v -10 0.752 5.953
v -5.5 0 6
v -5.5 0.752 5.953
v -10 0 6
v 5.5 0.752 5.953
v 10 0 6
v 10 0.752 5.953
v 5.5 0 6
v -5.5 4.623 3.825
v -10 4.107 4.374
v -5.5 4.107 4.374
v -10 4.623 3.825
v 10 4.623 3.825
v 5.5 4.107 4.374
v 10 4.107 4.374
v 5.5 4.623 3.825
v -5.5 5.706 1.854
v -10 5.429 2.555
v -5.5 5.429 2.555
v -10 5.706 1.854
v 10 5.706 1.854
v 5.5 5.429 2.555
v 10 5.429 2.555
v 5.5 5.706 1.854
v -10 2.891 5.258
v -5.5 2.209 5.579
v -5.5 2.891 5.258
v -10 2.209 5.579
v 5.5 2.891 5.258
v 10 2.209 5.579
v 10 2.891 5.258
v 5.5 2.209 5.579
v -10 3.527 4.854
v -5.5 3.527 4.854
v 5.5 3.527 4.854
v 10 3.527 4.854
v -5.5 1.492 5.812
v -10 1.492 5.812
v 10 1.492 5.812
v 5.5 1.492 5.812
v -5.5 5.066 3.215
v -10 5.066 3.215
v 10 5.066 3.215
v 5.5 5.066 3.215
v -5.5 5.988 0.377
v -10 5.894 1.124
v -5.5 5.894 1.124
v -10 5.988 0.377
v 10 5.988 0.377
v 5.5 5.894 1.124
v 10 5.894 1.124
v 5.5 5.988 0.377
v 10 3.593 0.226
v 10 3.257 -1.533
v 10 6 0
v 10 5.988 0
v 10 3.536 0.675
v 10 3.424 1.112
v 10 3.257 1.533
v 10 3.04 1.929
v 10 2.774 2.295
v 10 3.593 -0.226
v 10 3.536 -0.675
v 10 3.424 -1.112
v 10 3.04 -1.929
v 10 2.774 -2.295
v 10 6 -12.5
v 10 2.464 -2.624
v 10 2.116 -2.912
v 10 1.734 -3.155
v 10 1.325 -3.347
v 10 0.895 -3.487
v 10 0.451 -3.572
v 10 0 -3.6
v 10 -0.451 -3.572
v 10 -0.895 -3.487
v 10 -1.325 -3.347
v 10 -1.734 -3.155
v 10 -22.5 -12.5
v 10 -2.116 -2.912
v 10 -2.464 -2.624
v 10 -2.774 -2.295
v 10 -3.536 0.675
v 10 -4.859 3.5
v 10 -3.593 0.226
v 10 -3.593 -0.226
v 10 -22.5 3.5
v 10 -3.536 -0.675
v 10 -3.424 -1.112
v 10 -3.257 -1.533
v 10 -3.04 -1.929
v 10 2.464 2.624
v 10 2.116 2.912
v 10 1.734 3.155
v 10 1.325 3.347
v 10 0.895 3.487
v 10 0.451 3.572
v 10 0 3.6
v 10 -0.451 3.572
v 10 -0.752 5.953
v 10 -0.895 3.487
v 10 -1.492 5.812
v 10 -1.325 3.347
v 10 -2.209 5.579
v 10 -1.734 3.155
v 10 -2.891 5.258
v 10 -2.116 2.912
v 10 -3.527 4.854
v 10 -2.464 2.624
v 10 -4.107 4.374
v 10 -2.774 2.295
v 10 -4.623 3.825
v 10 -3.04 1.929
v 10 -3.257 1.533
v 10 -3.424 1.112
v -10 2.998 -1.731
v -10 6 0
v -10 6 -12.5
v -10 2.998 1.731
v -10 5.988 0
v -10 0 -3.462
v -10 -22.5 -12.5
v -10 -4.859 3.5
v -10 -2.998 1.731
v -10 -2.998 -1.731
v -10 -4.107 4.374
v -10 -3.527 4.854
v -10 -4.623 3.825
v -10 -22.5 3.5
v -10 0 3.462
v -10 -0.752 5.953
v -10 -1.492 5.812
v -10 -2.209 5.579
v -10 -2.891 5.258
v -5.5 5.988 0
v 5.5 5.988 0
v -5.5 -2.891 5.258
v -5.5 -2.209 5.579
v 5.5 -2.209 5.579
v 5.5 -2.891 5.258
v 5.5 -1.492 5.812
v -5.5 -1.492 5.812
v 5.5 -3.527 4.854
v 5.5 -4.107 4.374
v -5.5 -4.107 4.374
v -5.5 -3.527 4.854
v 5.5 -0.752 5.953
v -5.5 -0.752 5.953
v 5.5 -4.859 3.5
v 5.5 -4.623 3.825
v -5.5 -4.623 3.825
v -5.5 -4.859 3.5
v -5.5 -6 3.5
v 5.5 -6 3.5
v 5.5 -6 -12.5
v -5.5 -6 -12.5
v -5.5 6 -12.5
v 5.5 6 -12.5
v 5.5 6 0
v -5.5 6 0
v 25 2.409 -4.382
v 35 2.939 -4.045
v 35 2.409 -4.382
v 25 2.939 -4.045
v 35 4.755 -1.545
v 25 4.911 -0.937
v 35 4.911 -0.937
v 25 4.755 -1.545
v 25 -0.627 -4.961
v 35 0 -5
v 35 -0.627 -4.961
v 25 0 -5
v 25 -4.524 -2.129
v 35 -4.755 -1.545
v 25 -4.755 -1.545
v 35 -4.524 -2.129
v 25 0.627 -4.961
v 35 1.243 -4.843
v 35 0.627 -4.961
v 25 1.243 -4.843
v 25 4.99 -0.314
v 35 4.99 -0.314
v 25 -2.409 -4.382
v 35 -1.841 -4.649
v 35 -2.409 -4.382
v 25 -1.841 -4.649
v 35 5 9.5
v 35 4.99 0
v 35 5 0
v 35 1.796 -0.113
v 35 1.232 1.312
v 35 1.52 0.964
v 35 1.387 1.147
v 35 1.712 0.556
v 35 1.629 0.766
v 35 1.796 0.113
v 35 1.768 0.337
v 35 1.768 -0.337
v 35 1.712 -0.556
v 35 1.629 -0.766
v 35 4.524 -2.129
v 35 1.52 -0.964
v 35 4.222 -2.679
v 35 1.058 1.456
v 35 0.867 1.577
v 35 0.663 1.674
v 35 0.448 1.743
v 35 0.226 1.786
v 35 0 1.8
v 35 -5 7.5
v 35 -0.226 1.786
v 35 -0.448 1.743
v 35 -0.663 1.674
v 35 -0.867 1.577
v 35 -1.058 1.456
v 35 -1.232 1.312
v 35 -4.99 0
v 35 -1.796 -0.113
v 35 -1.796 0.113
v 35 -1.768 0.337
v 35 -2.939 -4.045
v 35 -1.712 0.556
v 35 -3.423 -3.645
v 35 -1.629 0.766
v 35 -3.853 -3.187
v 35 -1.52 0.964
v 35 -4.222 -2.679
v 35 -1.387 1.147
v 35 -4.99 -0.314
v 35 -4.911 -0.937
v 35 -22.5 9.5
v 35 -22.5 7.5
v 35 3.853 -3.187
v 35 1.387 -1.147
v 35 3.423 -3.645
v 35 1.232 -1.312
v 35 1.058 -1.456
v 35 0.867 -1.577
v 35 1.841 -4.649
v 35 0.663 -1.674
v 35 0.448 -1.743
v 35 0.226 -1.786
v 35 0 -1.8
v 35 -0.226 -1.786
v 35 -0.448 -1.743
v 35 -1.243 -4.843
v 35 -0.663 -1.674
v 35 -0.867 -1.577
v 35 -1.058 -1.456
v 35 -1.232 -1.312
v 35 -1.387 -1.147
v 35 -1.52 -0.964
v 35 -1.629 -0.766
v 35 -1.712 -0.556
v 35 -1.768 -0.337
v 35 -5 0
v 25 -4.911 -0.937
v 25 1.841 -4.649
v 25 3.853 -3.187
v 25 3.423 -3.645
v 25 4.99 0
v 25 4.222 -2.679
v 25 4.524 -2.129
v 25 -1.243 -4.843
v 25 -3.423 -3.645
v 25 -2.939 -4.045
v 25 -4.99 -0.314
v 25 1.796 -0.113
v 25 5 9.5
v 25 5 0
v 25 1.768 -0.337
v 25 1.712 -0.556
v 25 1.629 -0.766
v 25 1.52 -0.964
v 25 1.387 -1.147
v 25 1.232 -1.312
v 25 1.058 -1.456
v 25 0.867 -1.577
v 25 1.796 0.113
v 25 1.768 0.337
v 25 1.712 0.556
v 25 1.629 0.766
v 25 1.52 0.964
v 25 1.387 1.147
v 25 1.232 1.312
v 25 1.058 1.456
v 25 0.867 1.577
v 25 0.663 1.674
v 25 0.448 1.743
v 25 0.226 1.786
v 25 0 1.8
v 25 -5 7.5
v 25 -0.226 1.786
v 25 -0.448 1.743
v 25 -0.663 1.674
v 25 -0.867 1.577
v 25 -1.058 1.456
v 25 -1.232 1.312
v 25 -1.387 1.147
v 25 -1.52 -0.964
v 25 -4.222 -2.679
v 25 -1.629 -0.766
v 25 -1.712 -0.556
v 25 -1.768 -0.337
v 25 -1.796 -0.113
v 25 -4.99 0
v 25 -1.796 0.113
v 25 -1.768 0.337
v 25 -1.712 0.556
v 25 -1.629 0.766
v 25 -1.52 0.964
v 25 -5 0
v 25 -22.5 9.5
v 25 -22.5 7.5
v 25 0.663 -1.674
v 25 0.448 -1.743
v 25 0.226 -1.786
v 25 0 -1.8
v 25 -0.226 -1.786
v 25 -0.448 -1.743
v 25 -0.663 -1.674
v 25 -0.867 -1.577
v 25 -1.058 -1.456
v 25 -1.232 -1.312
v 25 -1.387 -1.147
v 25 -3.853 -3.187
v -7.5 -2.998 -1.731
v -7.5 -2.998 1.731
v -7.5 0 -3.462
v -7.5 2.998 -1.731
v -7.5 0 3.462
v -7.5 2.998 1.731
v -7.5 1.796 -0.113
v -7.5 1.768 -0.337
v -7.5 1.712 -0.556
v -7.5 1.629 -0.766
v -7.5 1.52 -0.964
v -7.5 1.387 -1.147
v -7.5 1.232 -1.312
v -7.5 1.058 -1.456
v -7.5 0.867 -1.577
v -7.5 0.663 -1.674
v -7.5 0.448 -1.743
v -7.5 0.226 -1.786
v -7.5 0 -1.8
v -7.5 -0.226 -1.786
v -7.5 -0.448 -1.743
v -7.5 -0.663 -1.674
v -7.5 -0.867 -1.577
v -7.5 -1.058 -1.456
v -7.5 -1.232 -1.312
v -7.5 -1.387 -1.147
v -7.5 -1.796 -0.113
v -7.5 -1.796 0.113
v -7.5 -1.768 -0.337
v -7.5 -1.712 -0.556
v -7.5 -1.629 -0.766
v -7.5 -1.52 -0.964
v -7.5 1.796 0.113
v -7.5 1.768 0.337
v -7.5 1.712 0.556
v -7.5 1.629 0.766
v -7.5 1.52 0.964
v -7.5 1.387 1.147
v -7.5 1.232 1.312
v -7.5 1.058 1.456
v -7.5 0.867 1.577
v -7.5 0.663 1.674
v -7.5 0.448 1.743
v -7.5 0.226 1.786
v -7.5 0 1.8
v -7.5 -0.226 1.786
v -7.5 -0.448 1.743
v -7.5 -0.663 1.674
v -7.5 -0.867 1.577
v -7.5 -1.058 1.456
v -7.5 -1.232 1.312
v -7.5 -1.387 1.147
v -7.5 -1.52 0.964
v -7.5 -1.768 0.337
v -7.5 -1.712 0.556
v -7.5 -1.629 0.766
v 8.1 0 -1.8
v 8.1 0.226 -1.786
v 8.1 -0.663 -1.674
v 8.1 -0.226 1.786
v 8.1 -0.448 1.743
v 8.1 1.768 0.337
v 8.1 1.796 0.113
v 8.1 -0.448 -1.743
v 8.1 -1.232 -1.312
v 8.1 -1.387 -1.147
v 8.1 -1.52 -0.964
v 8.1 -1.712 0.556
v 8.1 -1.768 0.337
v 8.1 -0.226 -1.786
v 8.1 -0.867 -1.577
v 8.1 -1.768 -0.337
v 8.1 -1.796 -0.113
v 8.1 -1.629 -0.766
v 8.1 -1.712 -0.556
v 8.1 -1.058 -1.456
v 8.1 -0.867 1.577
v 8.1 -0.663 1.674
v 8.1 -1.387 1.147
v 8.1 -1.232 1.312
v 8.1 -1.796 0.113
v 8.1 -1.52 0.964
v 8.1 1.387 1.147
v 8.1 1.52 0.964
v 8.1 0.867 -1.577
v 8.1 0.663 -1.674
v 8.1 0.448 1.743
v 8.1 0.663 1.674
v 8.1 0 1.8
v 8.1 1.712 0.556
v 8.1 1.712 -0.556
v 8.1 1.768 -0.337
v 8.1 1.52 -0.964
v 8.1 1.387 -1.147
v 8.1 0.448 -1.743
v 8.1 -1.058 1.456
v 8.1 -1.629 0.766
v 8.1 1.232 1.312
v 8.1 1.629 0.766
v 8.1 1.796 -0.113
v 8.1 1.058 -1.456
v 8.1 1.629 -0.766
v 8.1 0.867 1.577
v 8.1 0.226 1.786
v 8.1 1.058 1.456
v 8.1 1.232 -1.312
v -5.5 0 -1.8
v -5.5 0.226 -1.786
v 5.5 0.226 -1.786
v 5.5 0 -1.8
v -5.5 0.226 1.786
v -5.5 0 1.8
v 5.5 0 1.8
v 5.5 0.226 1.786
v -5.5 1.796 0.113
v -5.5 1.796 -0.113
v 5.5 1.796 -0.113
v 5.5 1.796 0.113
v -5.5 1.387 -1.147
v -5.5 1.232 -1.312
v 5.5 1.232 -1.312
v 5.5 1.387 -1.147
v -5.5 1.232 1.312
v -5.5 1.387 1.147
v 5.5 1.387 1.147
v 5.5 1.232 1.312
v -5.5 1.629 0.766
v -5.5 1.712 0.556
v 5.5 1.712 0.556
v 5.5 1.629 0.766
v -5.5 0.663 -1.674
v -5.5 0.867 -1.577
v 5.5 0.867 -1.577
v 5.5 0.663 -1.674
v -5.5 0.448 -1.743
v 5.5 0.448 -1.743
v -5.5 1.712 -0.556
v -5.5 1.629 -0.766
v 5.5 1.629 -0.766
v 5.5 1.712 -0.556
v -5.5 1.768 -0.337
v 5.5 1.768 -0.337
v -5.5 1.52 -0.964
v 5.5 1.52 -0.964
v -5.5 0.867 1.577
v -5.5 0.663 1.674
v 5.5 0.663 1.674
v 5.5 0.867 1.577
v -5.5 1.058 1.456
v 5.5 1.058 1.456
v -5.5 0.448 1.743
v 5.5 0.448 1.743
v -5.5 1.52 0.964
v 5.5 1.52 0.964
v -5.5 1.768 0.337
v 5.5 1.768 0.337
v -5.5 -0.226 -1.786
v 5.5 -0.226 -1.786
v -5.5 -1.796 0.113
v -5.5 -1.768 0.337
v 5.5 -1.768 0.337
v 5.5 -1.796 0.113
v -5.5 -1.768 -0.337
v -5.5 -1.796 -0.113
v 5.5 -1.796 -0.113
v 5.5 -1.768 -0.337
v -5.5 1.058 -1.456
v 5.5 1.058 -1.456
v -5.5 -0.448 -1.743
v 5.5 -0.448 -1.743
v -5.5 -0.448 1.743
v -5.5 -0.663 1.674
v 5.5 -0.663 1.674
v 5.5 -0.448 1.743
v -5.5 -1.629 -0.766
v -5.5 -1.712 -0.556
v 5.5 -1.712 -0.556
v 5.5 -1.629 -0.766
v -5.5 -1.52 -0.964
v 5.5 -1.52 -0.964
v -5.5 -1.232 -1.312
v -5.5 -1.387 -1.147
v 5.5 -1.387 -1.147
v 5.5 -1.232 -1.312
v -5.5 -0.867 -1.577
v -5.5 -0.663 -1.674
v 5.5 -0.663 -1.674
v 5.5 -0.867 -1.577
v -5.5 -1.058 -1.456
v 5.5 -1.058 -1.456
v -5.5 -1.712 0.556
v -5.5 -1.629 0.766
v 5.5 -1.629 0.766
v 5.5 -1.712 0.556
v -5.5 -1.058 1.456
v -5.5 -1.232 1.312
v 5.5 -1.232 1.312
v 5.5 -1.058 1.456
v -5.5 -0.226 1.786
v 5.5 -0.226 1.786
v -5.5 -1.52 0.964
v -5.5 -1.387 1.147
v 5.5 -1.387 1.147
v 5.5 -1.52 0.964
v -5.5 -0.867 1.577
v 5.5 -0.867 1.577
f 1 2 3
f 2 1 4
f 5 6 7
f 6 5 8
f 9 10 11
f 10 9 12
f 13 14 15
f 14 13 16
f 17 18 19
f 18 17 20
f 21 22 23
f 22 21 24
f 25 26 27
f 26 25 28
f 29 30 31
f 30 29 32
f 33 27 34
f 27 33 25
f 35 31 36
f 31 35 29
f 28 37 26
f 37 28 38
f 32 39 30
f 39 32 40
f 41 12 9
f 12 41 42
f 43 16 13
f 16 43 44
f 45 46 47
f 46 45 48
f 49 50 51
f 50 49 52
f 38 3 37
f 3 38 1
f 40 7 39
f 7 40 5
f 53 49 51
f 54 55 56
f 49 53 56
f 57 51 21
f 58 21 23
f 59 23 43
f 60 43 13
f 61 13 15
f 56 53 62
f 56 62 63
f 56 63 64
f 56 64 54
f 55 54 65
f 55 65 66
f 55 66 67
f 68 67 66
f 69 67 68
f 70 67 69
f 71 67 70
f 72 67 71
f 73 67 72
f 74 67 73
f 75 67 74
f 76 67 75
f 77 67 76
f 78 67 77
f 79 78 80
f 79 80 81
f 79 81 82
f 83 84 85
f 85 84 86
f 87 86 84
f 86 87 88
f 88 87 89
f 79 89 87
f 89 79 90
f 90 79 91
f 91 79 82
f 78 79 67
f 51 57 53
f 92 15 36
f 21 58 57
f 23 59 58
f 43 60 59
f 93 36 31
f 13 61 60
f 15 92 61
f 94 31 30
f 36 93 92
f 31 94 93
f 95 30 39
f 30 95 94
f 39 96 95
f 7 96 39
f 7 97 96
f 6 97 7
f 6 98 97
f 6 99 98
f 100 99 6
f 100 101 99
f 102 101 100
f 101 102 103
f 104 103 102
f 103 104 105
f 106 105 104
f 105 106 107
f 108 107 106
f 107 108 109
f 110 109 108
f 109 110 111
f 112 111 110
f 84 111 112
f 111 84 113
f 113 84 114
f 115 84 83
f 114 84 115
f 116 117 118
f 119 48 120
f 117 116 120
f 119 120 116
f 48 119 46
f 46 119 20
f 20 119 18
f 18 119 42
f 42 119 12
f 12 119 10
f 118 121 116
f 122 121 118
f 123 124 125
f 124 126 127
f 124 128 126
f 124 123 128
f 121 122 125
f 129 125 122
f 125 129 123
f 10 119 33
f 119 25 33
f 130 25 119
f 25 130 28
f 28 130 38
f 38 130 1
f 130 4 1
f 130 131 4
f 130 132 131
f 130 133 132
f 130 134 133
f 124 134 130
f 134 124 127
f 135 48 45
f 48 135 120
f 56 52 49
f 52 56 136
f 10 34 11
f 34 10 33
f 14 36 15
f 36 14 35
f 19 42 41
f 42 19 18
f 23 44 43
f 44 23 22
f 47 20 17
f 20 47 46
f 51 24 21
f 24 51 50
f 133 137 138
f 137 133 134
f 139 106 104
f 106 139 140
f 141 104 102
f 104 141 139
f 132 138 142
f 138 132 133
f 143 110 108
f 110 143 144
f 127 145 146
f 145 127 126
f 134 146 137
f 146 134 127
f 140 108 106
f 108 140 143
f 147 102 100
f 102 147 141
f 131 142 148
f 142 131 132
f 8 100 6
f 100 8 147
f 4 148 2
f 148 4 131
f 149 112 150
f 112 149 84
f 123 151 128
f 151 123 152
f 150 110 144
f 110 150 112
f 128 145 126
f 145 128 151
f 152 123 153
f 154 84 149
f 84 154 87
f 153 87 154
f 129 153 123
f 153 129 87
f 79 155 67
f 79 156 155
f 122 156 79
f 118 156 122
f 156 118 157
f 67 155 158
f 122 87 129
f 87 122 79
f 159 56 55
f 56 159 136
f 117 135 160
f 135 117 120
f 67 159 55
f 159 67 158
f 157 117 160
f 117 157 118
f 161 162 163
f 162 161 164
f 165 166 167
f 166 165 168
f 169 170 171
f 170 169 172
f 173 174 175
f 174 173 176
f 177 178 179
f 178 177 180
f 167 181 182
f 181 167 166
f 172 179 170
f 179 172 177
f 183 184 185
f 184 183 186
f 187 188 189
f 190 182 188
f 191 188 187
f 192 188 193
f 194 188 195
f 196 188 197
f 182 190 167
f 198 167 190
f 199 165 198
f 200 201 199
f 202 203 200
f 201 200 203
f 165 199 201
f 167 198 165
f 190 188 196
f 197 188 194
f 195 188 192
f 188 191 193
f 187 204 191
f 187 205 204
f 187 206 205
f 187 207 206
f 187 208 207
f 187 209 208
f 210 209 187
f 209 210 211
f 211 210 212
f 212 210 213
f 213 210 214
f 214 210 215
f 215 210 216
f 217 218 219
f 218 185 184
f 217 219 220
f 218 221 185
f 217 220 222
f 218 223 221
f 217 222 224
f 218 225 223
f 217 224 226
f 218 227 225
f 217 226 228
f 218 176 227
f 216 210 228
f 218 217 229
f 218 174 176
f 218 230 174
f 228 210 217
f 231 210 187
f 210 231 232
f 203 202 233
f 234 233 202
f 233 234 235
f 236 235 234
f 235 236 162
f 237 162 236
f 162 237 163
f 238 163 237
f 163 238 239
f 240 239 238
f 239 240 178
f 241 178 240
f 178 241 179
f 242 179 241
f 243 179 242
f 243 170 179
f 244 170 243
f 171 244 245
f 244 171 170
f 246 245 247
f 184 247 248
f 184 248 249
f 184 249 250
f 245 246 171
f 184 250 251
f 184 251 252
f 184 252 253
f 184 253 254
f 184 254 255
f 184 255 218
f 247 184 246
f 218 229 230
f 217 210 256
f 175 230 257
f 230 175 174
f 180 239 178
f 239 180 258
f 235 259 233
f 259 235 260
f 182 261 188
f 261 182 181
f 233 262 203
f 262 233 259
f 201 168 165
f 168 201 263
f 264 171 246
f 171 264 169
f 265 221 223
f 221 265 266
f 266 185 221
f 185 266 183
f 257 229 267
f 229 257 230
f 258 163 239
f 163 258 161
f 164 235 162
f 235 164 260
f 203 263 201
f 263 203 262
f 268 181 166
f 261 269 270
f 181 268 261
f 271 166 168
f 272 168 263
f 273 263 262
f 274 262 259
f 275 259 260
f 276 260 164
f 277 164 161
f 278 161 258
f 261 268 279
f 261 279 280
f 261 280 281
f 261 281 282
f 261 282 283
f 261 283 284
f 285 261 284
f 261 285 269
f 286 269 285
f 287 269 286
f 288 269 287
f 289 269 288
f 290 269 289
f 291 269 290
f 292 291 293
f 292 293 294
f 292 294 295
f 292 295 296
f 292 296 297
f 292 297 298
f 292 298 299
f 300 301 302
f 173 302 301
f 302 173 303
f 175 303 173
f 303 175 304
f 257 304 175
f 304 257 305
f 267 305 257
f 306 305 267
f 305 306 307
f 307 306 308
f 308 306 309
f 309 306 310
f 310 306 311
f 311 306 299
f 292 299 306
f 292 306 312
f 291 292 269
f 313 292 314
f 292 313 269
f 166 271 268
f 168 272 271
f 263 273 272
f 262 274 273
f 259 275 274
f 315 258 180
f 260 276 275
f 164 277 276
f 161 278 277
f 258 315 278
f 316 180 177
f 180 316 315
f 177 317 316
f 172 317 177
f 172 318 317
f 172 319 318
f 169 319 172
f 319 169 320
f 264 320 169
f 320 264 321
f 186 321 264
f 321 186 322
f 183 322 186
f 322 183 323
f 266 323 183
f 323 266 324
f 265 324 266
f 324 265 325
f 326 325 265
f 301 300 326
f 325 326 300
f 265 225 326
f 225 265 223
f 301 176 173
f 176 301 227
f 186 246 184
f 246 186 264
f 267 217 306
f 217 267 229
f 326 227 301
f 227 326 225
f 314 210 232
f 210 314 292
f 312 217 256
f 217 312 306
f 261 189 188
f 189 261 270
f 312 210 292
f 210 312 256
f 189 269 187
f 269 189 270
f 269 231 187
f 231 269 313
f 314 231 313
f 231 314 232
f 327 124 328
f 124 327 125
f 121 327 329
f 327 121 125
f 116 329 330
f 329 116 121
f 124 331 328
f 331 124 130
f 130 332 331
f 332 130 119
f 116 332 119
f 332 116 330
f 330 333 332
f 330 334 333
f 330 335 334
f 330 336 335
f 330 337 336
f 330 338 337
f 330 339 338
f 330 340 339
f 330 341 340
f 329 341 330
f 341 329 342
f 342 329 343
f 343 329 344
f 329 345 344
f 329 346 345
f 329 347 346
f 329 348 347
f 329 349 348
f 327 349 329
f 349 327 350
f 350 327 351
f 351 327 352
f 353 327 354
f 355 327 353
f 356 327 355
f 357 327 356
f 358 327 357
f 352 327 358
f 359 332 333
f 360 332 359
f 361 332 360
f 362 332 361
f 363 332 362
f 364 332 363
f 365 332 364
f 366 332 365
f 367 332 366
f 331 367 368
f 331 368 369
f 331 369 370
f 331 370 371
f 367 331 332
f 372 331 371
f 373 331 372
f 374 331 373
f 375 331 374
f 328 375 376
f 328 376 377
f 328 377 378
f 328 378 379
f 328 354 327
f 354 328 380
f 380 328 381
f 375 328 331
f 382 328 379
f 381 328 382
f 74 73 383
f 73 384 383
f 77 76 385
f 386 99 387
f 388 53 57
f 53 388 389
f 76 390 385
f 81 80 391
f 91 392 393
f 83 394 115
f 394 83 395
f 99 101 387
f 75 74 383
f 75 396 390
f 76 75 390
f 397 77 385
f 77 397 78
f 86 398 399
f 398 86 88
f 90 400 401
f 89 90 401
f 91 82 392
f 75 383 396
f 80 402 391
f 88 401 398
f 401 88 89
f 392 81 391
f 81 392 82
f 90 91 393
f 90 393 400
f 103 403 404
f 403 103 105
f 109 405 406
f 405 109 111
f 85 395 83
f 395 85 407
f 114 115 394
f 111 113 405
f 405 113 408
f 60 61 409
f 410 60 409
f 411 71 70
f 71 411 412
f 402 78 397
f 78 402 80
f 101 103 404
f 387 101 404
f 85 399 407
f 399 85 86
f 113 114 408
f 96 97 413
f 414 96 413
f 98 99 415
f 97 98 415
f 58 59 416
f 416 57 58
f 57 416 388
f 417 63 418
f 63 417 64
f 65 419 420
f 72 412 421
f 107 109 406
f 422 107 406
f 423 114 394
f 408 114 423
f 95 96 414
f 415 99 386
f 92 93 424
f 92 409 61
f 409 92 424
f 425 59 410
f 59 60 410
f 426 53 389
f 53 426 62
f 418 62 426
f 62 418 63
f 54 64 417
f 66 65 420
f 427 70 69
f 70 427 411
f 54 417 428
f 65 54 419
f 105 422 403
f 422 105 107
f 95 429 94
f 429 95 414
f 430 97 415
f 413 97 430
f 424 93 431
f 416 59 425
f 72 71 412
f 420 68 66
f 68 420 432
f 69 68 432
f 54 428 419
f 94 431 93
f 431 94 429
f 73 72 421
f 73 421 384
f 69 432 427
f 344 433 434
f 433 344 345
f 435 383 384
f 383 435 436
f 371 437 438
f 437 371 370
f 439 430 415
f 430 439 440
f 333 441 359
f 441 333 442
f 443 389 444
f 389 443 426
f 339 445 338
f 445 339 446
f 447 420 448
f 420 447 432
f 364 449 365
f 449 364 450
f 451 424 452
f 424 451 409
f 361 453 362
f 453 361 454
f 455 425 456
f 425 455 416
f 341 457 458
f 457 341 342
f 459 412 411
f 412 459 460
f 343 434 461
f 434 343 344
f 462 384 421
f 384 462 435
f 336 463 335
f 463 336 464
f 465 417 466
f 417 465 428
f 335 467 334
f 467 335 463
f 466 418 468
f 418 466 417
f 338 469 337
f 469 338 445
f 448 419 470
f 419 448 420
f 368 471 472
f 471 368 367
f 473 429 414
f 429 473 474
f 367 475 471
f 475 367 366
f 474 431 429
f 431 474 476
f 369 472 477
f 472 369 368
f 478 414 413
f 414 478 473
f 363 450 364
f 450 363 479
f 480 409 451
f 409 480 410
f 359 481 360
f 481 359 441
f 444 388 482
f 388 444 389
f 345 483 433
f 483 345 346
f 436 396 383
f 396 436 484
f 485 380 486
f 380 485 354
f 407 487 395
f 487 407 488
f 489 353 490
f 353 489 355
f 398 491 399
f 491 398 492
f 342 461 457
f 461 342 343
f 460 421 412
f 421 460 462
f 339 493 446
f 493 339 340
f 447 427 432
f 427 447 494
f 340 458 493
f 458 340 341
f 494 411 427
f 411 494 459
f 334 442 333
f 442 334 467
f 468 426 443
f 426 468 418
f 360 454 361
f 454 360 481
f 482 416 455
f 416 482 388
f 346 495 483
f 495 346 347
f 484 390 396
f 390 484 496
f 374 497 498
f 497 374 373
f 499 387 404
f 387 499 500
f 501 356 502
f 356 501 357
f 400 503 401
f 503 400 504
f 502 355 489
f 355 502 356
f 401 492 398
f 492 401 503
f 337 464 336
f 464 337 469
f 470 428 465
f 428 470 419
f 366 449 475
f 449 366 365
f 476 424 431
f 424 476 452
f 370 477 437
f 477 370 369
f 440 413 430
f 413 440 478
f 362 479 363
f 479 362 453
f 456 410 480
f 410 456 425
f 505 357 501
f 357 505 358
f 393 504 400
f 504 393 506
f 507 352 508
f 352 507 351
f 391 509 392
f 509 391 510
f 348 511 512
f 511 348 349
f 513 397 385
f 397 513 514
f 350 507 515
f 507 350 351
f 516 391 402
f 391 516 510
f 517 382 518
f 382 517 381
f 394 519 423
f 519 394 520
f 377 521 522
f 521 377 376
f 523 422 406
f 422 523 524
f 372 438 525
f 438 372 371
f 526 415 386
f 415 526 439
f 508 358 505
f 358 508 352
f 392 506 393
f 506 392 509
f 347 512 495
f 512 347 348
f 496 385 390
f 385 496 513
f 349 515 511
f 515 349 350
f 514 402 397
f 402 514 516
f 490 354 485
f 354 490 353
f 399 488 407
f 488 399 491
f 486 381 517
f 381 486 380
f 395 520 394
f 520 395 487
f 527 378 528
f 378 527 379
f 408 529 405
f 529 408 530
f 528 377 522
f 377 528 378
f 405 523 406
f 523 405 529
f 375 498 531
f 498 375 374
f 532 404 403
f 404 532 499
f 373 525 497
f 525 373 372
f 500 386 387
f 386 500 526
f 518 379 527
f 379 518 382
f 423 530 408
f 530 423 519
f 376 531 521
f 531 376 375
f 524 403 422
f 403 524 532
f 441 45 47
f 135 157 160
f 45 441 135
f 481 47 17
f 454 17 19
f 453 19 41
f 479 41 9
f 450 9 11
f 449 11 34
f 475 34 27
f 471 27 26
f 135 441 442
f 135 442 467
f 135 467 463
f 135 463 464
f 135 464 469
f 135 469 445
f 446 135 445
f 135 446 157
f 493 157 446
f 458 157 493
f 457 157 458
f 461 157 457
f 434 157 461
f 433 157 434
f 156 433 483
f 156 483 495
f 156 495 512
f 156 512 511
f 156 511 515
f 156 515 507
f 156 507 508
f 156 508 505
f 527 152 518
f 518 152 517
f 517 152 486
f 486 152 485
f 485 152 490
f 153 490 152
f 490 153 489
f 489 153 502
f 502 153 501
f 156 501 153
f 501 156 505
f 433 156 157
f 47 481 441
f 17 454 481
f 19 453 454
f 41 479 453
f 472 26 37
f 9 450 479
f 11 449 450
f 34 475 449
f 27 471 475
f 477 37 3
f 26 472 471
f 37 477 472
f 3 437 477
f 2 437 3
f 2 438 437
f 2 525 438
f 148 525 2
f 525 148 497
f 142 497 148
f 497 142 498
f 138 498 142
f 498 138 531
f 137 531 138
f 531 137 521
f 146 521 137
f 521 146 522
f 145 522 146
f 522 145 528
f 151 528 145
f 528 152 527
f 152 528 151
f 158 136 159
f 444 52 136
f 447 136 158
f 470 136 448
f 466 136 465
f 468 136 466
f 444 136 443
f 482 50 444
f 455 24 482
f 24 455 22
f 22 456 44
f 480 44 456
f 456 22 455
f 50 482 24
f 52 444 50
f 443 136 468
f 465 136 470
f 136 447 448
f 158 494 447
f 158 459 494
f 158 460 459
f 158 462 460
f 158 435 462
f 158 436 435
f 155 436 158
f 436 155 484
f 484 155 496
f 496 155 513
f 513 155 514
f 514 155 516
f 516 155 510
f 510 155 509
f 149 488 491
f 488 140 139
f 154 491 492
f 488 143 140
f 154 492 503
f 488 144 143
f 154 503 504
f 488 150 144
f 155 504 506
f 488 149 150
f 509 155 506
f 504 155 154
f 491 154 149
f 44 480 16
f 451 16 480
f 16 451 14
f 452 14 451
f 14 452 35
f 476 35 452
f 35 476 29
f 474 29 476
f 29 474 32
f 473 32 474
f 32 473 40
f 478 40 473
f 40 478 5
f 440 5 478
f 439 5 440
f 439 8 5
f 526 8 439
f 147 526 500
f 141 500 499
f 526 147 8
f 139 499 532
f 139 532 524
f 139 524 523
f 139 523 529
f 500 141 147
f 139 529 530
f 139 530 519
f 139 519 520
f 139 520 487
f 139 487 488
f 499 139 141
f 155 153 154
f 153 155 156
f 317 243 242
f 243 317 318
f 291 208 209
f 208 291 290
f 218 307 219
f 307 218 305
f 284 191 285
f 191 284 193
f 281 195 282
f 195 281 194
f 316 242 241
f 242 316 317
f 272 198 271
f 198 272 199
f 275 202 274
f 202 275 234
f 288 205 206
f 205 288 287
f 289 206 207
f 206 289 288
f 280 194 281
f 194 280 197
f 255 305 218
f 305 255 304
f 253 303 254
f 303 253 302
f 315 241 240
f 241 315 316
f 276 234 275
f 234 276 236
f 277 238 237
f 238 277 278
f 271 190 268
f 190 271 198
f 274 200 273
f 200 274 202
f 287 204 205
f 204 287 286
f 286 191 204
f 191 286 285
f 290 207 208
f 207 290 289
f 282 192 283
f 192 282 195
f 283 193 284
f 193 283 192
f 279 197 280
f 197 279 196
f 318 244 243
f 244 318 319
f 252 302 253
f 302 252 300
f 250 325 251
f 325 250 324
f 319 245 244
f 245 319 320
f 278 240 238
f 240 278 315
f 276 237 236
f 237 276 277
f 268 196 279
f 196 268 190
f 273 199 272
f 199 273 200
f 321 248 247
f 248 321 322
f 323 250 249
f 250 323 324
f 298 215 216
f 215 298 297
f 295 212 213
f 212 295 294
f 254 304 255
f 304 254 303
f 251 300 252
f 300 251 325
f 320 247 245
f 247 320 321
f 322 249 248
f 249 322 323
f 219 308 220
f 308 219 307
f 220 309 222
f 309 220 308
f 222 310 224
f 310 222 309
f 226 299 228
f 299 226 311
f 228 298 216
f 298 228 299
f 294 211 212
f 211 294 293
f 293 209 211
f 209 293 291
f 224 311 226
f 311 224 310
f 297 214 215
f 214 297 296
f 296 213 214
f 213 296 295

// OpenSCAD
$fn = 50;


difference() {
	union() {
		translate(v = [-10.0000000000, 0, 0.0000000000]) {
			rotate(a = [0, 90, 0]) {
				cylinder(h = 20, r = 6.0000000000);
			}
		}
		translate(v = [-10.0000000000, -22.5000000000, -12.5000000000]) {
			cube(size = [20, 22.5000000000, 16]);
		}
		translate(v = [-10.0000000000, -21.0000000000, -12.5000000000]) {
			cube(size = [20, 27, 12.5000000000]);
		}
		translate(v = [25.0000000000, 0, 0.0000000000]) {
			rotate(a = [0, 90, 0]) {
				cylinder(h = 10, r = 5.0000000000);
			}
		}
		translate(v = [25.0000000000, -5.0000000000, 0]) {
			cube(size = [10, 10, 7.5000000000]);
		}
		translate(v = [25.0000000000, -22.5000000000, 7.5000000000]) {
			cube(size = [10, 27.5000000000, 2]);
		}
	}
	union() {
		translate(v = [10.0000000000, 0, 0]) {
			rotate(a = [0, 90, 0]) {
				difference() {
					union() {
						translate(v = [0, 0, -20.0000000000]) {
							rotate(a = [0, 0, 0]) {
								difference() {
									union() {
										linear_extrude(height = 2.5000000000) {
											polygon(points = [[3.4620000000, 0.0000000000], [1.7310000000, 2.9981799479], [-1.7310000000, 2.9981799479], [-3.4620000000, 0.0000000000], [-1.7310000000, -2.9981799479], [1.7310000000, -2.9981799479]]);
										}
									}
									union();
								}
							}
						}
						translate(v = [0, 0, -20.0000000000]) {
							rotate(a = [0, 0, 0]) {
								difference() {
									union() {
										linear_extrude(height = 2.5000000000) {
											polygon(points = [[3.4620000000, 0.0000000000], [1.7310000000, 2.9981799479], [-1.7310000000, 2.9981799479], [-3.4620000000, 0.0000000000], [-1.7310000000, -2.9981799479], [1.7310000000, -2.9981799479]]);
										}
									}
									union();
								}
							}
						}
						translate(v = [0, 0, -20.0000000000]) {
							rotate(a = [0, 0, 0]) {
								difference() {
									union() {
										linear_extrude(height = 2.5000000000) {
											polygon(points = [[3.4620000000, 0.0000000000], [1.7310000000, 2.9981799479], [-1.7310000000, 2.9981799479], [-3.4620000000, 0.0000000000], [-1.7310000000, -2.9981799479], [1.7310000000, -2.9981799479]]);
										}
									}
									union();
								}
							}
						}
						translate(v = [0, 0, -20.0000000000]) {
							cylinder(h = 20, r = 1.5000000000);
						}
						translate(v = [0, 0, -1.9000000000]) {
							cylinder(h = 1.9000000000, r1 = 1.8000000000, r2 = 3.6000000000);
						}
						translate(v = [0, 0, -20.0000000000]) {
							cylinder(h = 20, r = 1.8000000000);
						}
						translate(v = [0, 0, -20.0000000000]) {
							cylinder(h = 20, r = 1.5000000000);
						}
					}
					union();
				}
			}
		}
		translate(v = [-5.5000000000, -6.0000000000, -12.5000000000]) {
			cube(size = [11, 15, 20]);
		}
		translate(v = [25.0000000000, 0, 0]) {
			rotate(a = [0, 90, 0]) {
				cylinder(h = 10, r = 1.8000000000);
			}
		}
	}
}
